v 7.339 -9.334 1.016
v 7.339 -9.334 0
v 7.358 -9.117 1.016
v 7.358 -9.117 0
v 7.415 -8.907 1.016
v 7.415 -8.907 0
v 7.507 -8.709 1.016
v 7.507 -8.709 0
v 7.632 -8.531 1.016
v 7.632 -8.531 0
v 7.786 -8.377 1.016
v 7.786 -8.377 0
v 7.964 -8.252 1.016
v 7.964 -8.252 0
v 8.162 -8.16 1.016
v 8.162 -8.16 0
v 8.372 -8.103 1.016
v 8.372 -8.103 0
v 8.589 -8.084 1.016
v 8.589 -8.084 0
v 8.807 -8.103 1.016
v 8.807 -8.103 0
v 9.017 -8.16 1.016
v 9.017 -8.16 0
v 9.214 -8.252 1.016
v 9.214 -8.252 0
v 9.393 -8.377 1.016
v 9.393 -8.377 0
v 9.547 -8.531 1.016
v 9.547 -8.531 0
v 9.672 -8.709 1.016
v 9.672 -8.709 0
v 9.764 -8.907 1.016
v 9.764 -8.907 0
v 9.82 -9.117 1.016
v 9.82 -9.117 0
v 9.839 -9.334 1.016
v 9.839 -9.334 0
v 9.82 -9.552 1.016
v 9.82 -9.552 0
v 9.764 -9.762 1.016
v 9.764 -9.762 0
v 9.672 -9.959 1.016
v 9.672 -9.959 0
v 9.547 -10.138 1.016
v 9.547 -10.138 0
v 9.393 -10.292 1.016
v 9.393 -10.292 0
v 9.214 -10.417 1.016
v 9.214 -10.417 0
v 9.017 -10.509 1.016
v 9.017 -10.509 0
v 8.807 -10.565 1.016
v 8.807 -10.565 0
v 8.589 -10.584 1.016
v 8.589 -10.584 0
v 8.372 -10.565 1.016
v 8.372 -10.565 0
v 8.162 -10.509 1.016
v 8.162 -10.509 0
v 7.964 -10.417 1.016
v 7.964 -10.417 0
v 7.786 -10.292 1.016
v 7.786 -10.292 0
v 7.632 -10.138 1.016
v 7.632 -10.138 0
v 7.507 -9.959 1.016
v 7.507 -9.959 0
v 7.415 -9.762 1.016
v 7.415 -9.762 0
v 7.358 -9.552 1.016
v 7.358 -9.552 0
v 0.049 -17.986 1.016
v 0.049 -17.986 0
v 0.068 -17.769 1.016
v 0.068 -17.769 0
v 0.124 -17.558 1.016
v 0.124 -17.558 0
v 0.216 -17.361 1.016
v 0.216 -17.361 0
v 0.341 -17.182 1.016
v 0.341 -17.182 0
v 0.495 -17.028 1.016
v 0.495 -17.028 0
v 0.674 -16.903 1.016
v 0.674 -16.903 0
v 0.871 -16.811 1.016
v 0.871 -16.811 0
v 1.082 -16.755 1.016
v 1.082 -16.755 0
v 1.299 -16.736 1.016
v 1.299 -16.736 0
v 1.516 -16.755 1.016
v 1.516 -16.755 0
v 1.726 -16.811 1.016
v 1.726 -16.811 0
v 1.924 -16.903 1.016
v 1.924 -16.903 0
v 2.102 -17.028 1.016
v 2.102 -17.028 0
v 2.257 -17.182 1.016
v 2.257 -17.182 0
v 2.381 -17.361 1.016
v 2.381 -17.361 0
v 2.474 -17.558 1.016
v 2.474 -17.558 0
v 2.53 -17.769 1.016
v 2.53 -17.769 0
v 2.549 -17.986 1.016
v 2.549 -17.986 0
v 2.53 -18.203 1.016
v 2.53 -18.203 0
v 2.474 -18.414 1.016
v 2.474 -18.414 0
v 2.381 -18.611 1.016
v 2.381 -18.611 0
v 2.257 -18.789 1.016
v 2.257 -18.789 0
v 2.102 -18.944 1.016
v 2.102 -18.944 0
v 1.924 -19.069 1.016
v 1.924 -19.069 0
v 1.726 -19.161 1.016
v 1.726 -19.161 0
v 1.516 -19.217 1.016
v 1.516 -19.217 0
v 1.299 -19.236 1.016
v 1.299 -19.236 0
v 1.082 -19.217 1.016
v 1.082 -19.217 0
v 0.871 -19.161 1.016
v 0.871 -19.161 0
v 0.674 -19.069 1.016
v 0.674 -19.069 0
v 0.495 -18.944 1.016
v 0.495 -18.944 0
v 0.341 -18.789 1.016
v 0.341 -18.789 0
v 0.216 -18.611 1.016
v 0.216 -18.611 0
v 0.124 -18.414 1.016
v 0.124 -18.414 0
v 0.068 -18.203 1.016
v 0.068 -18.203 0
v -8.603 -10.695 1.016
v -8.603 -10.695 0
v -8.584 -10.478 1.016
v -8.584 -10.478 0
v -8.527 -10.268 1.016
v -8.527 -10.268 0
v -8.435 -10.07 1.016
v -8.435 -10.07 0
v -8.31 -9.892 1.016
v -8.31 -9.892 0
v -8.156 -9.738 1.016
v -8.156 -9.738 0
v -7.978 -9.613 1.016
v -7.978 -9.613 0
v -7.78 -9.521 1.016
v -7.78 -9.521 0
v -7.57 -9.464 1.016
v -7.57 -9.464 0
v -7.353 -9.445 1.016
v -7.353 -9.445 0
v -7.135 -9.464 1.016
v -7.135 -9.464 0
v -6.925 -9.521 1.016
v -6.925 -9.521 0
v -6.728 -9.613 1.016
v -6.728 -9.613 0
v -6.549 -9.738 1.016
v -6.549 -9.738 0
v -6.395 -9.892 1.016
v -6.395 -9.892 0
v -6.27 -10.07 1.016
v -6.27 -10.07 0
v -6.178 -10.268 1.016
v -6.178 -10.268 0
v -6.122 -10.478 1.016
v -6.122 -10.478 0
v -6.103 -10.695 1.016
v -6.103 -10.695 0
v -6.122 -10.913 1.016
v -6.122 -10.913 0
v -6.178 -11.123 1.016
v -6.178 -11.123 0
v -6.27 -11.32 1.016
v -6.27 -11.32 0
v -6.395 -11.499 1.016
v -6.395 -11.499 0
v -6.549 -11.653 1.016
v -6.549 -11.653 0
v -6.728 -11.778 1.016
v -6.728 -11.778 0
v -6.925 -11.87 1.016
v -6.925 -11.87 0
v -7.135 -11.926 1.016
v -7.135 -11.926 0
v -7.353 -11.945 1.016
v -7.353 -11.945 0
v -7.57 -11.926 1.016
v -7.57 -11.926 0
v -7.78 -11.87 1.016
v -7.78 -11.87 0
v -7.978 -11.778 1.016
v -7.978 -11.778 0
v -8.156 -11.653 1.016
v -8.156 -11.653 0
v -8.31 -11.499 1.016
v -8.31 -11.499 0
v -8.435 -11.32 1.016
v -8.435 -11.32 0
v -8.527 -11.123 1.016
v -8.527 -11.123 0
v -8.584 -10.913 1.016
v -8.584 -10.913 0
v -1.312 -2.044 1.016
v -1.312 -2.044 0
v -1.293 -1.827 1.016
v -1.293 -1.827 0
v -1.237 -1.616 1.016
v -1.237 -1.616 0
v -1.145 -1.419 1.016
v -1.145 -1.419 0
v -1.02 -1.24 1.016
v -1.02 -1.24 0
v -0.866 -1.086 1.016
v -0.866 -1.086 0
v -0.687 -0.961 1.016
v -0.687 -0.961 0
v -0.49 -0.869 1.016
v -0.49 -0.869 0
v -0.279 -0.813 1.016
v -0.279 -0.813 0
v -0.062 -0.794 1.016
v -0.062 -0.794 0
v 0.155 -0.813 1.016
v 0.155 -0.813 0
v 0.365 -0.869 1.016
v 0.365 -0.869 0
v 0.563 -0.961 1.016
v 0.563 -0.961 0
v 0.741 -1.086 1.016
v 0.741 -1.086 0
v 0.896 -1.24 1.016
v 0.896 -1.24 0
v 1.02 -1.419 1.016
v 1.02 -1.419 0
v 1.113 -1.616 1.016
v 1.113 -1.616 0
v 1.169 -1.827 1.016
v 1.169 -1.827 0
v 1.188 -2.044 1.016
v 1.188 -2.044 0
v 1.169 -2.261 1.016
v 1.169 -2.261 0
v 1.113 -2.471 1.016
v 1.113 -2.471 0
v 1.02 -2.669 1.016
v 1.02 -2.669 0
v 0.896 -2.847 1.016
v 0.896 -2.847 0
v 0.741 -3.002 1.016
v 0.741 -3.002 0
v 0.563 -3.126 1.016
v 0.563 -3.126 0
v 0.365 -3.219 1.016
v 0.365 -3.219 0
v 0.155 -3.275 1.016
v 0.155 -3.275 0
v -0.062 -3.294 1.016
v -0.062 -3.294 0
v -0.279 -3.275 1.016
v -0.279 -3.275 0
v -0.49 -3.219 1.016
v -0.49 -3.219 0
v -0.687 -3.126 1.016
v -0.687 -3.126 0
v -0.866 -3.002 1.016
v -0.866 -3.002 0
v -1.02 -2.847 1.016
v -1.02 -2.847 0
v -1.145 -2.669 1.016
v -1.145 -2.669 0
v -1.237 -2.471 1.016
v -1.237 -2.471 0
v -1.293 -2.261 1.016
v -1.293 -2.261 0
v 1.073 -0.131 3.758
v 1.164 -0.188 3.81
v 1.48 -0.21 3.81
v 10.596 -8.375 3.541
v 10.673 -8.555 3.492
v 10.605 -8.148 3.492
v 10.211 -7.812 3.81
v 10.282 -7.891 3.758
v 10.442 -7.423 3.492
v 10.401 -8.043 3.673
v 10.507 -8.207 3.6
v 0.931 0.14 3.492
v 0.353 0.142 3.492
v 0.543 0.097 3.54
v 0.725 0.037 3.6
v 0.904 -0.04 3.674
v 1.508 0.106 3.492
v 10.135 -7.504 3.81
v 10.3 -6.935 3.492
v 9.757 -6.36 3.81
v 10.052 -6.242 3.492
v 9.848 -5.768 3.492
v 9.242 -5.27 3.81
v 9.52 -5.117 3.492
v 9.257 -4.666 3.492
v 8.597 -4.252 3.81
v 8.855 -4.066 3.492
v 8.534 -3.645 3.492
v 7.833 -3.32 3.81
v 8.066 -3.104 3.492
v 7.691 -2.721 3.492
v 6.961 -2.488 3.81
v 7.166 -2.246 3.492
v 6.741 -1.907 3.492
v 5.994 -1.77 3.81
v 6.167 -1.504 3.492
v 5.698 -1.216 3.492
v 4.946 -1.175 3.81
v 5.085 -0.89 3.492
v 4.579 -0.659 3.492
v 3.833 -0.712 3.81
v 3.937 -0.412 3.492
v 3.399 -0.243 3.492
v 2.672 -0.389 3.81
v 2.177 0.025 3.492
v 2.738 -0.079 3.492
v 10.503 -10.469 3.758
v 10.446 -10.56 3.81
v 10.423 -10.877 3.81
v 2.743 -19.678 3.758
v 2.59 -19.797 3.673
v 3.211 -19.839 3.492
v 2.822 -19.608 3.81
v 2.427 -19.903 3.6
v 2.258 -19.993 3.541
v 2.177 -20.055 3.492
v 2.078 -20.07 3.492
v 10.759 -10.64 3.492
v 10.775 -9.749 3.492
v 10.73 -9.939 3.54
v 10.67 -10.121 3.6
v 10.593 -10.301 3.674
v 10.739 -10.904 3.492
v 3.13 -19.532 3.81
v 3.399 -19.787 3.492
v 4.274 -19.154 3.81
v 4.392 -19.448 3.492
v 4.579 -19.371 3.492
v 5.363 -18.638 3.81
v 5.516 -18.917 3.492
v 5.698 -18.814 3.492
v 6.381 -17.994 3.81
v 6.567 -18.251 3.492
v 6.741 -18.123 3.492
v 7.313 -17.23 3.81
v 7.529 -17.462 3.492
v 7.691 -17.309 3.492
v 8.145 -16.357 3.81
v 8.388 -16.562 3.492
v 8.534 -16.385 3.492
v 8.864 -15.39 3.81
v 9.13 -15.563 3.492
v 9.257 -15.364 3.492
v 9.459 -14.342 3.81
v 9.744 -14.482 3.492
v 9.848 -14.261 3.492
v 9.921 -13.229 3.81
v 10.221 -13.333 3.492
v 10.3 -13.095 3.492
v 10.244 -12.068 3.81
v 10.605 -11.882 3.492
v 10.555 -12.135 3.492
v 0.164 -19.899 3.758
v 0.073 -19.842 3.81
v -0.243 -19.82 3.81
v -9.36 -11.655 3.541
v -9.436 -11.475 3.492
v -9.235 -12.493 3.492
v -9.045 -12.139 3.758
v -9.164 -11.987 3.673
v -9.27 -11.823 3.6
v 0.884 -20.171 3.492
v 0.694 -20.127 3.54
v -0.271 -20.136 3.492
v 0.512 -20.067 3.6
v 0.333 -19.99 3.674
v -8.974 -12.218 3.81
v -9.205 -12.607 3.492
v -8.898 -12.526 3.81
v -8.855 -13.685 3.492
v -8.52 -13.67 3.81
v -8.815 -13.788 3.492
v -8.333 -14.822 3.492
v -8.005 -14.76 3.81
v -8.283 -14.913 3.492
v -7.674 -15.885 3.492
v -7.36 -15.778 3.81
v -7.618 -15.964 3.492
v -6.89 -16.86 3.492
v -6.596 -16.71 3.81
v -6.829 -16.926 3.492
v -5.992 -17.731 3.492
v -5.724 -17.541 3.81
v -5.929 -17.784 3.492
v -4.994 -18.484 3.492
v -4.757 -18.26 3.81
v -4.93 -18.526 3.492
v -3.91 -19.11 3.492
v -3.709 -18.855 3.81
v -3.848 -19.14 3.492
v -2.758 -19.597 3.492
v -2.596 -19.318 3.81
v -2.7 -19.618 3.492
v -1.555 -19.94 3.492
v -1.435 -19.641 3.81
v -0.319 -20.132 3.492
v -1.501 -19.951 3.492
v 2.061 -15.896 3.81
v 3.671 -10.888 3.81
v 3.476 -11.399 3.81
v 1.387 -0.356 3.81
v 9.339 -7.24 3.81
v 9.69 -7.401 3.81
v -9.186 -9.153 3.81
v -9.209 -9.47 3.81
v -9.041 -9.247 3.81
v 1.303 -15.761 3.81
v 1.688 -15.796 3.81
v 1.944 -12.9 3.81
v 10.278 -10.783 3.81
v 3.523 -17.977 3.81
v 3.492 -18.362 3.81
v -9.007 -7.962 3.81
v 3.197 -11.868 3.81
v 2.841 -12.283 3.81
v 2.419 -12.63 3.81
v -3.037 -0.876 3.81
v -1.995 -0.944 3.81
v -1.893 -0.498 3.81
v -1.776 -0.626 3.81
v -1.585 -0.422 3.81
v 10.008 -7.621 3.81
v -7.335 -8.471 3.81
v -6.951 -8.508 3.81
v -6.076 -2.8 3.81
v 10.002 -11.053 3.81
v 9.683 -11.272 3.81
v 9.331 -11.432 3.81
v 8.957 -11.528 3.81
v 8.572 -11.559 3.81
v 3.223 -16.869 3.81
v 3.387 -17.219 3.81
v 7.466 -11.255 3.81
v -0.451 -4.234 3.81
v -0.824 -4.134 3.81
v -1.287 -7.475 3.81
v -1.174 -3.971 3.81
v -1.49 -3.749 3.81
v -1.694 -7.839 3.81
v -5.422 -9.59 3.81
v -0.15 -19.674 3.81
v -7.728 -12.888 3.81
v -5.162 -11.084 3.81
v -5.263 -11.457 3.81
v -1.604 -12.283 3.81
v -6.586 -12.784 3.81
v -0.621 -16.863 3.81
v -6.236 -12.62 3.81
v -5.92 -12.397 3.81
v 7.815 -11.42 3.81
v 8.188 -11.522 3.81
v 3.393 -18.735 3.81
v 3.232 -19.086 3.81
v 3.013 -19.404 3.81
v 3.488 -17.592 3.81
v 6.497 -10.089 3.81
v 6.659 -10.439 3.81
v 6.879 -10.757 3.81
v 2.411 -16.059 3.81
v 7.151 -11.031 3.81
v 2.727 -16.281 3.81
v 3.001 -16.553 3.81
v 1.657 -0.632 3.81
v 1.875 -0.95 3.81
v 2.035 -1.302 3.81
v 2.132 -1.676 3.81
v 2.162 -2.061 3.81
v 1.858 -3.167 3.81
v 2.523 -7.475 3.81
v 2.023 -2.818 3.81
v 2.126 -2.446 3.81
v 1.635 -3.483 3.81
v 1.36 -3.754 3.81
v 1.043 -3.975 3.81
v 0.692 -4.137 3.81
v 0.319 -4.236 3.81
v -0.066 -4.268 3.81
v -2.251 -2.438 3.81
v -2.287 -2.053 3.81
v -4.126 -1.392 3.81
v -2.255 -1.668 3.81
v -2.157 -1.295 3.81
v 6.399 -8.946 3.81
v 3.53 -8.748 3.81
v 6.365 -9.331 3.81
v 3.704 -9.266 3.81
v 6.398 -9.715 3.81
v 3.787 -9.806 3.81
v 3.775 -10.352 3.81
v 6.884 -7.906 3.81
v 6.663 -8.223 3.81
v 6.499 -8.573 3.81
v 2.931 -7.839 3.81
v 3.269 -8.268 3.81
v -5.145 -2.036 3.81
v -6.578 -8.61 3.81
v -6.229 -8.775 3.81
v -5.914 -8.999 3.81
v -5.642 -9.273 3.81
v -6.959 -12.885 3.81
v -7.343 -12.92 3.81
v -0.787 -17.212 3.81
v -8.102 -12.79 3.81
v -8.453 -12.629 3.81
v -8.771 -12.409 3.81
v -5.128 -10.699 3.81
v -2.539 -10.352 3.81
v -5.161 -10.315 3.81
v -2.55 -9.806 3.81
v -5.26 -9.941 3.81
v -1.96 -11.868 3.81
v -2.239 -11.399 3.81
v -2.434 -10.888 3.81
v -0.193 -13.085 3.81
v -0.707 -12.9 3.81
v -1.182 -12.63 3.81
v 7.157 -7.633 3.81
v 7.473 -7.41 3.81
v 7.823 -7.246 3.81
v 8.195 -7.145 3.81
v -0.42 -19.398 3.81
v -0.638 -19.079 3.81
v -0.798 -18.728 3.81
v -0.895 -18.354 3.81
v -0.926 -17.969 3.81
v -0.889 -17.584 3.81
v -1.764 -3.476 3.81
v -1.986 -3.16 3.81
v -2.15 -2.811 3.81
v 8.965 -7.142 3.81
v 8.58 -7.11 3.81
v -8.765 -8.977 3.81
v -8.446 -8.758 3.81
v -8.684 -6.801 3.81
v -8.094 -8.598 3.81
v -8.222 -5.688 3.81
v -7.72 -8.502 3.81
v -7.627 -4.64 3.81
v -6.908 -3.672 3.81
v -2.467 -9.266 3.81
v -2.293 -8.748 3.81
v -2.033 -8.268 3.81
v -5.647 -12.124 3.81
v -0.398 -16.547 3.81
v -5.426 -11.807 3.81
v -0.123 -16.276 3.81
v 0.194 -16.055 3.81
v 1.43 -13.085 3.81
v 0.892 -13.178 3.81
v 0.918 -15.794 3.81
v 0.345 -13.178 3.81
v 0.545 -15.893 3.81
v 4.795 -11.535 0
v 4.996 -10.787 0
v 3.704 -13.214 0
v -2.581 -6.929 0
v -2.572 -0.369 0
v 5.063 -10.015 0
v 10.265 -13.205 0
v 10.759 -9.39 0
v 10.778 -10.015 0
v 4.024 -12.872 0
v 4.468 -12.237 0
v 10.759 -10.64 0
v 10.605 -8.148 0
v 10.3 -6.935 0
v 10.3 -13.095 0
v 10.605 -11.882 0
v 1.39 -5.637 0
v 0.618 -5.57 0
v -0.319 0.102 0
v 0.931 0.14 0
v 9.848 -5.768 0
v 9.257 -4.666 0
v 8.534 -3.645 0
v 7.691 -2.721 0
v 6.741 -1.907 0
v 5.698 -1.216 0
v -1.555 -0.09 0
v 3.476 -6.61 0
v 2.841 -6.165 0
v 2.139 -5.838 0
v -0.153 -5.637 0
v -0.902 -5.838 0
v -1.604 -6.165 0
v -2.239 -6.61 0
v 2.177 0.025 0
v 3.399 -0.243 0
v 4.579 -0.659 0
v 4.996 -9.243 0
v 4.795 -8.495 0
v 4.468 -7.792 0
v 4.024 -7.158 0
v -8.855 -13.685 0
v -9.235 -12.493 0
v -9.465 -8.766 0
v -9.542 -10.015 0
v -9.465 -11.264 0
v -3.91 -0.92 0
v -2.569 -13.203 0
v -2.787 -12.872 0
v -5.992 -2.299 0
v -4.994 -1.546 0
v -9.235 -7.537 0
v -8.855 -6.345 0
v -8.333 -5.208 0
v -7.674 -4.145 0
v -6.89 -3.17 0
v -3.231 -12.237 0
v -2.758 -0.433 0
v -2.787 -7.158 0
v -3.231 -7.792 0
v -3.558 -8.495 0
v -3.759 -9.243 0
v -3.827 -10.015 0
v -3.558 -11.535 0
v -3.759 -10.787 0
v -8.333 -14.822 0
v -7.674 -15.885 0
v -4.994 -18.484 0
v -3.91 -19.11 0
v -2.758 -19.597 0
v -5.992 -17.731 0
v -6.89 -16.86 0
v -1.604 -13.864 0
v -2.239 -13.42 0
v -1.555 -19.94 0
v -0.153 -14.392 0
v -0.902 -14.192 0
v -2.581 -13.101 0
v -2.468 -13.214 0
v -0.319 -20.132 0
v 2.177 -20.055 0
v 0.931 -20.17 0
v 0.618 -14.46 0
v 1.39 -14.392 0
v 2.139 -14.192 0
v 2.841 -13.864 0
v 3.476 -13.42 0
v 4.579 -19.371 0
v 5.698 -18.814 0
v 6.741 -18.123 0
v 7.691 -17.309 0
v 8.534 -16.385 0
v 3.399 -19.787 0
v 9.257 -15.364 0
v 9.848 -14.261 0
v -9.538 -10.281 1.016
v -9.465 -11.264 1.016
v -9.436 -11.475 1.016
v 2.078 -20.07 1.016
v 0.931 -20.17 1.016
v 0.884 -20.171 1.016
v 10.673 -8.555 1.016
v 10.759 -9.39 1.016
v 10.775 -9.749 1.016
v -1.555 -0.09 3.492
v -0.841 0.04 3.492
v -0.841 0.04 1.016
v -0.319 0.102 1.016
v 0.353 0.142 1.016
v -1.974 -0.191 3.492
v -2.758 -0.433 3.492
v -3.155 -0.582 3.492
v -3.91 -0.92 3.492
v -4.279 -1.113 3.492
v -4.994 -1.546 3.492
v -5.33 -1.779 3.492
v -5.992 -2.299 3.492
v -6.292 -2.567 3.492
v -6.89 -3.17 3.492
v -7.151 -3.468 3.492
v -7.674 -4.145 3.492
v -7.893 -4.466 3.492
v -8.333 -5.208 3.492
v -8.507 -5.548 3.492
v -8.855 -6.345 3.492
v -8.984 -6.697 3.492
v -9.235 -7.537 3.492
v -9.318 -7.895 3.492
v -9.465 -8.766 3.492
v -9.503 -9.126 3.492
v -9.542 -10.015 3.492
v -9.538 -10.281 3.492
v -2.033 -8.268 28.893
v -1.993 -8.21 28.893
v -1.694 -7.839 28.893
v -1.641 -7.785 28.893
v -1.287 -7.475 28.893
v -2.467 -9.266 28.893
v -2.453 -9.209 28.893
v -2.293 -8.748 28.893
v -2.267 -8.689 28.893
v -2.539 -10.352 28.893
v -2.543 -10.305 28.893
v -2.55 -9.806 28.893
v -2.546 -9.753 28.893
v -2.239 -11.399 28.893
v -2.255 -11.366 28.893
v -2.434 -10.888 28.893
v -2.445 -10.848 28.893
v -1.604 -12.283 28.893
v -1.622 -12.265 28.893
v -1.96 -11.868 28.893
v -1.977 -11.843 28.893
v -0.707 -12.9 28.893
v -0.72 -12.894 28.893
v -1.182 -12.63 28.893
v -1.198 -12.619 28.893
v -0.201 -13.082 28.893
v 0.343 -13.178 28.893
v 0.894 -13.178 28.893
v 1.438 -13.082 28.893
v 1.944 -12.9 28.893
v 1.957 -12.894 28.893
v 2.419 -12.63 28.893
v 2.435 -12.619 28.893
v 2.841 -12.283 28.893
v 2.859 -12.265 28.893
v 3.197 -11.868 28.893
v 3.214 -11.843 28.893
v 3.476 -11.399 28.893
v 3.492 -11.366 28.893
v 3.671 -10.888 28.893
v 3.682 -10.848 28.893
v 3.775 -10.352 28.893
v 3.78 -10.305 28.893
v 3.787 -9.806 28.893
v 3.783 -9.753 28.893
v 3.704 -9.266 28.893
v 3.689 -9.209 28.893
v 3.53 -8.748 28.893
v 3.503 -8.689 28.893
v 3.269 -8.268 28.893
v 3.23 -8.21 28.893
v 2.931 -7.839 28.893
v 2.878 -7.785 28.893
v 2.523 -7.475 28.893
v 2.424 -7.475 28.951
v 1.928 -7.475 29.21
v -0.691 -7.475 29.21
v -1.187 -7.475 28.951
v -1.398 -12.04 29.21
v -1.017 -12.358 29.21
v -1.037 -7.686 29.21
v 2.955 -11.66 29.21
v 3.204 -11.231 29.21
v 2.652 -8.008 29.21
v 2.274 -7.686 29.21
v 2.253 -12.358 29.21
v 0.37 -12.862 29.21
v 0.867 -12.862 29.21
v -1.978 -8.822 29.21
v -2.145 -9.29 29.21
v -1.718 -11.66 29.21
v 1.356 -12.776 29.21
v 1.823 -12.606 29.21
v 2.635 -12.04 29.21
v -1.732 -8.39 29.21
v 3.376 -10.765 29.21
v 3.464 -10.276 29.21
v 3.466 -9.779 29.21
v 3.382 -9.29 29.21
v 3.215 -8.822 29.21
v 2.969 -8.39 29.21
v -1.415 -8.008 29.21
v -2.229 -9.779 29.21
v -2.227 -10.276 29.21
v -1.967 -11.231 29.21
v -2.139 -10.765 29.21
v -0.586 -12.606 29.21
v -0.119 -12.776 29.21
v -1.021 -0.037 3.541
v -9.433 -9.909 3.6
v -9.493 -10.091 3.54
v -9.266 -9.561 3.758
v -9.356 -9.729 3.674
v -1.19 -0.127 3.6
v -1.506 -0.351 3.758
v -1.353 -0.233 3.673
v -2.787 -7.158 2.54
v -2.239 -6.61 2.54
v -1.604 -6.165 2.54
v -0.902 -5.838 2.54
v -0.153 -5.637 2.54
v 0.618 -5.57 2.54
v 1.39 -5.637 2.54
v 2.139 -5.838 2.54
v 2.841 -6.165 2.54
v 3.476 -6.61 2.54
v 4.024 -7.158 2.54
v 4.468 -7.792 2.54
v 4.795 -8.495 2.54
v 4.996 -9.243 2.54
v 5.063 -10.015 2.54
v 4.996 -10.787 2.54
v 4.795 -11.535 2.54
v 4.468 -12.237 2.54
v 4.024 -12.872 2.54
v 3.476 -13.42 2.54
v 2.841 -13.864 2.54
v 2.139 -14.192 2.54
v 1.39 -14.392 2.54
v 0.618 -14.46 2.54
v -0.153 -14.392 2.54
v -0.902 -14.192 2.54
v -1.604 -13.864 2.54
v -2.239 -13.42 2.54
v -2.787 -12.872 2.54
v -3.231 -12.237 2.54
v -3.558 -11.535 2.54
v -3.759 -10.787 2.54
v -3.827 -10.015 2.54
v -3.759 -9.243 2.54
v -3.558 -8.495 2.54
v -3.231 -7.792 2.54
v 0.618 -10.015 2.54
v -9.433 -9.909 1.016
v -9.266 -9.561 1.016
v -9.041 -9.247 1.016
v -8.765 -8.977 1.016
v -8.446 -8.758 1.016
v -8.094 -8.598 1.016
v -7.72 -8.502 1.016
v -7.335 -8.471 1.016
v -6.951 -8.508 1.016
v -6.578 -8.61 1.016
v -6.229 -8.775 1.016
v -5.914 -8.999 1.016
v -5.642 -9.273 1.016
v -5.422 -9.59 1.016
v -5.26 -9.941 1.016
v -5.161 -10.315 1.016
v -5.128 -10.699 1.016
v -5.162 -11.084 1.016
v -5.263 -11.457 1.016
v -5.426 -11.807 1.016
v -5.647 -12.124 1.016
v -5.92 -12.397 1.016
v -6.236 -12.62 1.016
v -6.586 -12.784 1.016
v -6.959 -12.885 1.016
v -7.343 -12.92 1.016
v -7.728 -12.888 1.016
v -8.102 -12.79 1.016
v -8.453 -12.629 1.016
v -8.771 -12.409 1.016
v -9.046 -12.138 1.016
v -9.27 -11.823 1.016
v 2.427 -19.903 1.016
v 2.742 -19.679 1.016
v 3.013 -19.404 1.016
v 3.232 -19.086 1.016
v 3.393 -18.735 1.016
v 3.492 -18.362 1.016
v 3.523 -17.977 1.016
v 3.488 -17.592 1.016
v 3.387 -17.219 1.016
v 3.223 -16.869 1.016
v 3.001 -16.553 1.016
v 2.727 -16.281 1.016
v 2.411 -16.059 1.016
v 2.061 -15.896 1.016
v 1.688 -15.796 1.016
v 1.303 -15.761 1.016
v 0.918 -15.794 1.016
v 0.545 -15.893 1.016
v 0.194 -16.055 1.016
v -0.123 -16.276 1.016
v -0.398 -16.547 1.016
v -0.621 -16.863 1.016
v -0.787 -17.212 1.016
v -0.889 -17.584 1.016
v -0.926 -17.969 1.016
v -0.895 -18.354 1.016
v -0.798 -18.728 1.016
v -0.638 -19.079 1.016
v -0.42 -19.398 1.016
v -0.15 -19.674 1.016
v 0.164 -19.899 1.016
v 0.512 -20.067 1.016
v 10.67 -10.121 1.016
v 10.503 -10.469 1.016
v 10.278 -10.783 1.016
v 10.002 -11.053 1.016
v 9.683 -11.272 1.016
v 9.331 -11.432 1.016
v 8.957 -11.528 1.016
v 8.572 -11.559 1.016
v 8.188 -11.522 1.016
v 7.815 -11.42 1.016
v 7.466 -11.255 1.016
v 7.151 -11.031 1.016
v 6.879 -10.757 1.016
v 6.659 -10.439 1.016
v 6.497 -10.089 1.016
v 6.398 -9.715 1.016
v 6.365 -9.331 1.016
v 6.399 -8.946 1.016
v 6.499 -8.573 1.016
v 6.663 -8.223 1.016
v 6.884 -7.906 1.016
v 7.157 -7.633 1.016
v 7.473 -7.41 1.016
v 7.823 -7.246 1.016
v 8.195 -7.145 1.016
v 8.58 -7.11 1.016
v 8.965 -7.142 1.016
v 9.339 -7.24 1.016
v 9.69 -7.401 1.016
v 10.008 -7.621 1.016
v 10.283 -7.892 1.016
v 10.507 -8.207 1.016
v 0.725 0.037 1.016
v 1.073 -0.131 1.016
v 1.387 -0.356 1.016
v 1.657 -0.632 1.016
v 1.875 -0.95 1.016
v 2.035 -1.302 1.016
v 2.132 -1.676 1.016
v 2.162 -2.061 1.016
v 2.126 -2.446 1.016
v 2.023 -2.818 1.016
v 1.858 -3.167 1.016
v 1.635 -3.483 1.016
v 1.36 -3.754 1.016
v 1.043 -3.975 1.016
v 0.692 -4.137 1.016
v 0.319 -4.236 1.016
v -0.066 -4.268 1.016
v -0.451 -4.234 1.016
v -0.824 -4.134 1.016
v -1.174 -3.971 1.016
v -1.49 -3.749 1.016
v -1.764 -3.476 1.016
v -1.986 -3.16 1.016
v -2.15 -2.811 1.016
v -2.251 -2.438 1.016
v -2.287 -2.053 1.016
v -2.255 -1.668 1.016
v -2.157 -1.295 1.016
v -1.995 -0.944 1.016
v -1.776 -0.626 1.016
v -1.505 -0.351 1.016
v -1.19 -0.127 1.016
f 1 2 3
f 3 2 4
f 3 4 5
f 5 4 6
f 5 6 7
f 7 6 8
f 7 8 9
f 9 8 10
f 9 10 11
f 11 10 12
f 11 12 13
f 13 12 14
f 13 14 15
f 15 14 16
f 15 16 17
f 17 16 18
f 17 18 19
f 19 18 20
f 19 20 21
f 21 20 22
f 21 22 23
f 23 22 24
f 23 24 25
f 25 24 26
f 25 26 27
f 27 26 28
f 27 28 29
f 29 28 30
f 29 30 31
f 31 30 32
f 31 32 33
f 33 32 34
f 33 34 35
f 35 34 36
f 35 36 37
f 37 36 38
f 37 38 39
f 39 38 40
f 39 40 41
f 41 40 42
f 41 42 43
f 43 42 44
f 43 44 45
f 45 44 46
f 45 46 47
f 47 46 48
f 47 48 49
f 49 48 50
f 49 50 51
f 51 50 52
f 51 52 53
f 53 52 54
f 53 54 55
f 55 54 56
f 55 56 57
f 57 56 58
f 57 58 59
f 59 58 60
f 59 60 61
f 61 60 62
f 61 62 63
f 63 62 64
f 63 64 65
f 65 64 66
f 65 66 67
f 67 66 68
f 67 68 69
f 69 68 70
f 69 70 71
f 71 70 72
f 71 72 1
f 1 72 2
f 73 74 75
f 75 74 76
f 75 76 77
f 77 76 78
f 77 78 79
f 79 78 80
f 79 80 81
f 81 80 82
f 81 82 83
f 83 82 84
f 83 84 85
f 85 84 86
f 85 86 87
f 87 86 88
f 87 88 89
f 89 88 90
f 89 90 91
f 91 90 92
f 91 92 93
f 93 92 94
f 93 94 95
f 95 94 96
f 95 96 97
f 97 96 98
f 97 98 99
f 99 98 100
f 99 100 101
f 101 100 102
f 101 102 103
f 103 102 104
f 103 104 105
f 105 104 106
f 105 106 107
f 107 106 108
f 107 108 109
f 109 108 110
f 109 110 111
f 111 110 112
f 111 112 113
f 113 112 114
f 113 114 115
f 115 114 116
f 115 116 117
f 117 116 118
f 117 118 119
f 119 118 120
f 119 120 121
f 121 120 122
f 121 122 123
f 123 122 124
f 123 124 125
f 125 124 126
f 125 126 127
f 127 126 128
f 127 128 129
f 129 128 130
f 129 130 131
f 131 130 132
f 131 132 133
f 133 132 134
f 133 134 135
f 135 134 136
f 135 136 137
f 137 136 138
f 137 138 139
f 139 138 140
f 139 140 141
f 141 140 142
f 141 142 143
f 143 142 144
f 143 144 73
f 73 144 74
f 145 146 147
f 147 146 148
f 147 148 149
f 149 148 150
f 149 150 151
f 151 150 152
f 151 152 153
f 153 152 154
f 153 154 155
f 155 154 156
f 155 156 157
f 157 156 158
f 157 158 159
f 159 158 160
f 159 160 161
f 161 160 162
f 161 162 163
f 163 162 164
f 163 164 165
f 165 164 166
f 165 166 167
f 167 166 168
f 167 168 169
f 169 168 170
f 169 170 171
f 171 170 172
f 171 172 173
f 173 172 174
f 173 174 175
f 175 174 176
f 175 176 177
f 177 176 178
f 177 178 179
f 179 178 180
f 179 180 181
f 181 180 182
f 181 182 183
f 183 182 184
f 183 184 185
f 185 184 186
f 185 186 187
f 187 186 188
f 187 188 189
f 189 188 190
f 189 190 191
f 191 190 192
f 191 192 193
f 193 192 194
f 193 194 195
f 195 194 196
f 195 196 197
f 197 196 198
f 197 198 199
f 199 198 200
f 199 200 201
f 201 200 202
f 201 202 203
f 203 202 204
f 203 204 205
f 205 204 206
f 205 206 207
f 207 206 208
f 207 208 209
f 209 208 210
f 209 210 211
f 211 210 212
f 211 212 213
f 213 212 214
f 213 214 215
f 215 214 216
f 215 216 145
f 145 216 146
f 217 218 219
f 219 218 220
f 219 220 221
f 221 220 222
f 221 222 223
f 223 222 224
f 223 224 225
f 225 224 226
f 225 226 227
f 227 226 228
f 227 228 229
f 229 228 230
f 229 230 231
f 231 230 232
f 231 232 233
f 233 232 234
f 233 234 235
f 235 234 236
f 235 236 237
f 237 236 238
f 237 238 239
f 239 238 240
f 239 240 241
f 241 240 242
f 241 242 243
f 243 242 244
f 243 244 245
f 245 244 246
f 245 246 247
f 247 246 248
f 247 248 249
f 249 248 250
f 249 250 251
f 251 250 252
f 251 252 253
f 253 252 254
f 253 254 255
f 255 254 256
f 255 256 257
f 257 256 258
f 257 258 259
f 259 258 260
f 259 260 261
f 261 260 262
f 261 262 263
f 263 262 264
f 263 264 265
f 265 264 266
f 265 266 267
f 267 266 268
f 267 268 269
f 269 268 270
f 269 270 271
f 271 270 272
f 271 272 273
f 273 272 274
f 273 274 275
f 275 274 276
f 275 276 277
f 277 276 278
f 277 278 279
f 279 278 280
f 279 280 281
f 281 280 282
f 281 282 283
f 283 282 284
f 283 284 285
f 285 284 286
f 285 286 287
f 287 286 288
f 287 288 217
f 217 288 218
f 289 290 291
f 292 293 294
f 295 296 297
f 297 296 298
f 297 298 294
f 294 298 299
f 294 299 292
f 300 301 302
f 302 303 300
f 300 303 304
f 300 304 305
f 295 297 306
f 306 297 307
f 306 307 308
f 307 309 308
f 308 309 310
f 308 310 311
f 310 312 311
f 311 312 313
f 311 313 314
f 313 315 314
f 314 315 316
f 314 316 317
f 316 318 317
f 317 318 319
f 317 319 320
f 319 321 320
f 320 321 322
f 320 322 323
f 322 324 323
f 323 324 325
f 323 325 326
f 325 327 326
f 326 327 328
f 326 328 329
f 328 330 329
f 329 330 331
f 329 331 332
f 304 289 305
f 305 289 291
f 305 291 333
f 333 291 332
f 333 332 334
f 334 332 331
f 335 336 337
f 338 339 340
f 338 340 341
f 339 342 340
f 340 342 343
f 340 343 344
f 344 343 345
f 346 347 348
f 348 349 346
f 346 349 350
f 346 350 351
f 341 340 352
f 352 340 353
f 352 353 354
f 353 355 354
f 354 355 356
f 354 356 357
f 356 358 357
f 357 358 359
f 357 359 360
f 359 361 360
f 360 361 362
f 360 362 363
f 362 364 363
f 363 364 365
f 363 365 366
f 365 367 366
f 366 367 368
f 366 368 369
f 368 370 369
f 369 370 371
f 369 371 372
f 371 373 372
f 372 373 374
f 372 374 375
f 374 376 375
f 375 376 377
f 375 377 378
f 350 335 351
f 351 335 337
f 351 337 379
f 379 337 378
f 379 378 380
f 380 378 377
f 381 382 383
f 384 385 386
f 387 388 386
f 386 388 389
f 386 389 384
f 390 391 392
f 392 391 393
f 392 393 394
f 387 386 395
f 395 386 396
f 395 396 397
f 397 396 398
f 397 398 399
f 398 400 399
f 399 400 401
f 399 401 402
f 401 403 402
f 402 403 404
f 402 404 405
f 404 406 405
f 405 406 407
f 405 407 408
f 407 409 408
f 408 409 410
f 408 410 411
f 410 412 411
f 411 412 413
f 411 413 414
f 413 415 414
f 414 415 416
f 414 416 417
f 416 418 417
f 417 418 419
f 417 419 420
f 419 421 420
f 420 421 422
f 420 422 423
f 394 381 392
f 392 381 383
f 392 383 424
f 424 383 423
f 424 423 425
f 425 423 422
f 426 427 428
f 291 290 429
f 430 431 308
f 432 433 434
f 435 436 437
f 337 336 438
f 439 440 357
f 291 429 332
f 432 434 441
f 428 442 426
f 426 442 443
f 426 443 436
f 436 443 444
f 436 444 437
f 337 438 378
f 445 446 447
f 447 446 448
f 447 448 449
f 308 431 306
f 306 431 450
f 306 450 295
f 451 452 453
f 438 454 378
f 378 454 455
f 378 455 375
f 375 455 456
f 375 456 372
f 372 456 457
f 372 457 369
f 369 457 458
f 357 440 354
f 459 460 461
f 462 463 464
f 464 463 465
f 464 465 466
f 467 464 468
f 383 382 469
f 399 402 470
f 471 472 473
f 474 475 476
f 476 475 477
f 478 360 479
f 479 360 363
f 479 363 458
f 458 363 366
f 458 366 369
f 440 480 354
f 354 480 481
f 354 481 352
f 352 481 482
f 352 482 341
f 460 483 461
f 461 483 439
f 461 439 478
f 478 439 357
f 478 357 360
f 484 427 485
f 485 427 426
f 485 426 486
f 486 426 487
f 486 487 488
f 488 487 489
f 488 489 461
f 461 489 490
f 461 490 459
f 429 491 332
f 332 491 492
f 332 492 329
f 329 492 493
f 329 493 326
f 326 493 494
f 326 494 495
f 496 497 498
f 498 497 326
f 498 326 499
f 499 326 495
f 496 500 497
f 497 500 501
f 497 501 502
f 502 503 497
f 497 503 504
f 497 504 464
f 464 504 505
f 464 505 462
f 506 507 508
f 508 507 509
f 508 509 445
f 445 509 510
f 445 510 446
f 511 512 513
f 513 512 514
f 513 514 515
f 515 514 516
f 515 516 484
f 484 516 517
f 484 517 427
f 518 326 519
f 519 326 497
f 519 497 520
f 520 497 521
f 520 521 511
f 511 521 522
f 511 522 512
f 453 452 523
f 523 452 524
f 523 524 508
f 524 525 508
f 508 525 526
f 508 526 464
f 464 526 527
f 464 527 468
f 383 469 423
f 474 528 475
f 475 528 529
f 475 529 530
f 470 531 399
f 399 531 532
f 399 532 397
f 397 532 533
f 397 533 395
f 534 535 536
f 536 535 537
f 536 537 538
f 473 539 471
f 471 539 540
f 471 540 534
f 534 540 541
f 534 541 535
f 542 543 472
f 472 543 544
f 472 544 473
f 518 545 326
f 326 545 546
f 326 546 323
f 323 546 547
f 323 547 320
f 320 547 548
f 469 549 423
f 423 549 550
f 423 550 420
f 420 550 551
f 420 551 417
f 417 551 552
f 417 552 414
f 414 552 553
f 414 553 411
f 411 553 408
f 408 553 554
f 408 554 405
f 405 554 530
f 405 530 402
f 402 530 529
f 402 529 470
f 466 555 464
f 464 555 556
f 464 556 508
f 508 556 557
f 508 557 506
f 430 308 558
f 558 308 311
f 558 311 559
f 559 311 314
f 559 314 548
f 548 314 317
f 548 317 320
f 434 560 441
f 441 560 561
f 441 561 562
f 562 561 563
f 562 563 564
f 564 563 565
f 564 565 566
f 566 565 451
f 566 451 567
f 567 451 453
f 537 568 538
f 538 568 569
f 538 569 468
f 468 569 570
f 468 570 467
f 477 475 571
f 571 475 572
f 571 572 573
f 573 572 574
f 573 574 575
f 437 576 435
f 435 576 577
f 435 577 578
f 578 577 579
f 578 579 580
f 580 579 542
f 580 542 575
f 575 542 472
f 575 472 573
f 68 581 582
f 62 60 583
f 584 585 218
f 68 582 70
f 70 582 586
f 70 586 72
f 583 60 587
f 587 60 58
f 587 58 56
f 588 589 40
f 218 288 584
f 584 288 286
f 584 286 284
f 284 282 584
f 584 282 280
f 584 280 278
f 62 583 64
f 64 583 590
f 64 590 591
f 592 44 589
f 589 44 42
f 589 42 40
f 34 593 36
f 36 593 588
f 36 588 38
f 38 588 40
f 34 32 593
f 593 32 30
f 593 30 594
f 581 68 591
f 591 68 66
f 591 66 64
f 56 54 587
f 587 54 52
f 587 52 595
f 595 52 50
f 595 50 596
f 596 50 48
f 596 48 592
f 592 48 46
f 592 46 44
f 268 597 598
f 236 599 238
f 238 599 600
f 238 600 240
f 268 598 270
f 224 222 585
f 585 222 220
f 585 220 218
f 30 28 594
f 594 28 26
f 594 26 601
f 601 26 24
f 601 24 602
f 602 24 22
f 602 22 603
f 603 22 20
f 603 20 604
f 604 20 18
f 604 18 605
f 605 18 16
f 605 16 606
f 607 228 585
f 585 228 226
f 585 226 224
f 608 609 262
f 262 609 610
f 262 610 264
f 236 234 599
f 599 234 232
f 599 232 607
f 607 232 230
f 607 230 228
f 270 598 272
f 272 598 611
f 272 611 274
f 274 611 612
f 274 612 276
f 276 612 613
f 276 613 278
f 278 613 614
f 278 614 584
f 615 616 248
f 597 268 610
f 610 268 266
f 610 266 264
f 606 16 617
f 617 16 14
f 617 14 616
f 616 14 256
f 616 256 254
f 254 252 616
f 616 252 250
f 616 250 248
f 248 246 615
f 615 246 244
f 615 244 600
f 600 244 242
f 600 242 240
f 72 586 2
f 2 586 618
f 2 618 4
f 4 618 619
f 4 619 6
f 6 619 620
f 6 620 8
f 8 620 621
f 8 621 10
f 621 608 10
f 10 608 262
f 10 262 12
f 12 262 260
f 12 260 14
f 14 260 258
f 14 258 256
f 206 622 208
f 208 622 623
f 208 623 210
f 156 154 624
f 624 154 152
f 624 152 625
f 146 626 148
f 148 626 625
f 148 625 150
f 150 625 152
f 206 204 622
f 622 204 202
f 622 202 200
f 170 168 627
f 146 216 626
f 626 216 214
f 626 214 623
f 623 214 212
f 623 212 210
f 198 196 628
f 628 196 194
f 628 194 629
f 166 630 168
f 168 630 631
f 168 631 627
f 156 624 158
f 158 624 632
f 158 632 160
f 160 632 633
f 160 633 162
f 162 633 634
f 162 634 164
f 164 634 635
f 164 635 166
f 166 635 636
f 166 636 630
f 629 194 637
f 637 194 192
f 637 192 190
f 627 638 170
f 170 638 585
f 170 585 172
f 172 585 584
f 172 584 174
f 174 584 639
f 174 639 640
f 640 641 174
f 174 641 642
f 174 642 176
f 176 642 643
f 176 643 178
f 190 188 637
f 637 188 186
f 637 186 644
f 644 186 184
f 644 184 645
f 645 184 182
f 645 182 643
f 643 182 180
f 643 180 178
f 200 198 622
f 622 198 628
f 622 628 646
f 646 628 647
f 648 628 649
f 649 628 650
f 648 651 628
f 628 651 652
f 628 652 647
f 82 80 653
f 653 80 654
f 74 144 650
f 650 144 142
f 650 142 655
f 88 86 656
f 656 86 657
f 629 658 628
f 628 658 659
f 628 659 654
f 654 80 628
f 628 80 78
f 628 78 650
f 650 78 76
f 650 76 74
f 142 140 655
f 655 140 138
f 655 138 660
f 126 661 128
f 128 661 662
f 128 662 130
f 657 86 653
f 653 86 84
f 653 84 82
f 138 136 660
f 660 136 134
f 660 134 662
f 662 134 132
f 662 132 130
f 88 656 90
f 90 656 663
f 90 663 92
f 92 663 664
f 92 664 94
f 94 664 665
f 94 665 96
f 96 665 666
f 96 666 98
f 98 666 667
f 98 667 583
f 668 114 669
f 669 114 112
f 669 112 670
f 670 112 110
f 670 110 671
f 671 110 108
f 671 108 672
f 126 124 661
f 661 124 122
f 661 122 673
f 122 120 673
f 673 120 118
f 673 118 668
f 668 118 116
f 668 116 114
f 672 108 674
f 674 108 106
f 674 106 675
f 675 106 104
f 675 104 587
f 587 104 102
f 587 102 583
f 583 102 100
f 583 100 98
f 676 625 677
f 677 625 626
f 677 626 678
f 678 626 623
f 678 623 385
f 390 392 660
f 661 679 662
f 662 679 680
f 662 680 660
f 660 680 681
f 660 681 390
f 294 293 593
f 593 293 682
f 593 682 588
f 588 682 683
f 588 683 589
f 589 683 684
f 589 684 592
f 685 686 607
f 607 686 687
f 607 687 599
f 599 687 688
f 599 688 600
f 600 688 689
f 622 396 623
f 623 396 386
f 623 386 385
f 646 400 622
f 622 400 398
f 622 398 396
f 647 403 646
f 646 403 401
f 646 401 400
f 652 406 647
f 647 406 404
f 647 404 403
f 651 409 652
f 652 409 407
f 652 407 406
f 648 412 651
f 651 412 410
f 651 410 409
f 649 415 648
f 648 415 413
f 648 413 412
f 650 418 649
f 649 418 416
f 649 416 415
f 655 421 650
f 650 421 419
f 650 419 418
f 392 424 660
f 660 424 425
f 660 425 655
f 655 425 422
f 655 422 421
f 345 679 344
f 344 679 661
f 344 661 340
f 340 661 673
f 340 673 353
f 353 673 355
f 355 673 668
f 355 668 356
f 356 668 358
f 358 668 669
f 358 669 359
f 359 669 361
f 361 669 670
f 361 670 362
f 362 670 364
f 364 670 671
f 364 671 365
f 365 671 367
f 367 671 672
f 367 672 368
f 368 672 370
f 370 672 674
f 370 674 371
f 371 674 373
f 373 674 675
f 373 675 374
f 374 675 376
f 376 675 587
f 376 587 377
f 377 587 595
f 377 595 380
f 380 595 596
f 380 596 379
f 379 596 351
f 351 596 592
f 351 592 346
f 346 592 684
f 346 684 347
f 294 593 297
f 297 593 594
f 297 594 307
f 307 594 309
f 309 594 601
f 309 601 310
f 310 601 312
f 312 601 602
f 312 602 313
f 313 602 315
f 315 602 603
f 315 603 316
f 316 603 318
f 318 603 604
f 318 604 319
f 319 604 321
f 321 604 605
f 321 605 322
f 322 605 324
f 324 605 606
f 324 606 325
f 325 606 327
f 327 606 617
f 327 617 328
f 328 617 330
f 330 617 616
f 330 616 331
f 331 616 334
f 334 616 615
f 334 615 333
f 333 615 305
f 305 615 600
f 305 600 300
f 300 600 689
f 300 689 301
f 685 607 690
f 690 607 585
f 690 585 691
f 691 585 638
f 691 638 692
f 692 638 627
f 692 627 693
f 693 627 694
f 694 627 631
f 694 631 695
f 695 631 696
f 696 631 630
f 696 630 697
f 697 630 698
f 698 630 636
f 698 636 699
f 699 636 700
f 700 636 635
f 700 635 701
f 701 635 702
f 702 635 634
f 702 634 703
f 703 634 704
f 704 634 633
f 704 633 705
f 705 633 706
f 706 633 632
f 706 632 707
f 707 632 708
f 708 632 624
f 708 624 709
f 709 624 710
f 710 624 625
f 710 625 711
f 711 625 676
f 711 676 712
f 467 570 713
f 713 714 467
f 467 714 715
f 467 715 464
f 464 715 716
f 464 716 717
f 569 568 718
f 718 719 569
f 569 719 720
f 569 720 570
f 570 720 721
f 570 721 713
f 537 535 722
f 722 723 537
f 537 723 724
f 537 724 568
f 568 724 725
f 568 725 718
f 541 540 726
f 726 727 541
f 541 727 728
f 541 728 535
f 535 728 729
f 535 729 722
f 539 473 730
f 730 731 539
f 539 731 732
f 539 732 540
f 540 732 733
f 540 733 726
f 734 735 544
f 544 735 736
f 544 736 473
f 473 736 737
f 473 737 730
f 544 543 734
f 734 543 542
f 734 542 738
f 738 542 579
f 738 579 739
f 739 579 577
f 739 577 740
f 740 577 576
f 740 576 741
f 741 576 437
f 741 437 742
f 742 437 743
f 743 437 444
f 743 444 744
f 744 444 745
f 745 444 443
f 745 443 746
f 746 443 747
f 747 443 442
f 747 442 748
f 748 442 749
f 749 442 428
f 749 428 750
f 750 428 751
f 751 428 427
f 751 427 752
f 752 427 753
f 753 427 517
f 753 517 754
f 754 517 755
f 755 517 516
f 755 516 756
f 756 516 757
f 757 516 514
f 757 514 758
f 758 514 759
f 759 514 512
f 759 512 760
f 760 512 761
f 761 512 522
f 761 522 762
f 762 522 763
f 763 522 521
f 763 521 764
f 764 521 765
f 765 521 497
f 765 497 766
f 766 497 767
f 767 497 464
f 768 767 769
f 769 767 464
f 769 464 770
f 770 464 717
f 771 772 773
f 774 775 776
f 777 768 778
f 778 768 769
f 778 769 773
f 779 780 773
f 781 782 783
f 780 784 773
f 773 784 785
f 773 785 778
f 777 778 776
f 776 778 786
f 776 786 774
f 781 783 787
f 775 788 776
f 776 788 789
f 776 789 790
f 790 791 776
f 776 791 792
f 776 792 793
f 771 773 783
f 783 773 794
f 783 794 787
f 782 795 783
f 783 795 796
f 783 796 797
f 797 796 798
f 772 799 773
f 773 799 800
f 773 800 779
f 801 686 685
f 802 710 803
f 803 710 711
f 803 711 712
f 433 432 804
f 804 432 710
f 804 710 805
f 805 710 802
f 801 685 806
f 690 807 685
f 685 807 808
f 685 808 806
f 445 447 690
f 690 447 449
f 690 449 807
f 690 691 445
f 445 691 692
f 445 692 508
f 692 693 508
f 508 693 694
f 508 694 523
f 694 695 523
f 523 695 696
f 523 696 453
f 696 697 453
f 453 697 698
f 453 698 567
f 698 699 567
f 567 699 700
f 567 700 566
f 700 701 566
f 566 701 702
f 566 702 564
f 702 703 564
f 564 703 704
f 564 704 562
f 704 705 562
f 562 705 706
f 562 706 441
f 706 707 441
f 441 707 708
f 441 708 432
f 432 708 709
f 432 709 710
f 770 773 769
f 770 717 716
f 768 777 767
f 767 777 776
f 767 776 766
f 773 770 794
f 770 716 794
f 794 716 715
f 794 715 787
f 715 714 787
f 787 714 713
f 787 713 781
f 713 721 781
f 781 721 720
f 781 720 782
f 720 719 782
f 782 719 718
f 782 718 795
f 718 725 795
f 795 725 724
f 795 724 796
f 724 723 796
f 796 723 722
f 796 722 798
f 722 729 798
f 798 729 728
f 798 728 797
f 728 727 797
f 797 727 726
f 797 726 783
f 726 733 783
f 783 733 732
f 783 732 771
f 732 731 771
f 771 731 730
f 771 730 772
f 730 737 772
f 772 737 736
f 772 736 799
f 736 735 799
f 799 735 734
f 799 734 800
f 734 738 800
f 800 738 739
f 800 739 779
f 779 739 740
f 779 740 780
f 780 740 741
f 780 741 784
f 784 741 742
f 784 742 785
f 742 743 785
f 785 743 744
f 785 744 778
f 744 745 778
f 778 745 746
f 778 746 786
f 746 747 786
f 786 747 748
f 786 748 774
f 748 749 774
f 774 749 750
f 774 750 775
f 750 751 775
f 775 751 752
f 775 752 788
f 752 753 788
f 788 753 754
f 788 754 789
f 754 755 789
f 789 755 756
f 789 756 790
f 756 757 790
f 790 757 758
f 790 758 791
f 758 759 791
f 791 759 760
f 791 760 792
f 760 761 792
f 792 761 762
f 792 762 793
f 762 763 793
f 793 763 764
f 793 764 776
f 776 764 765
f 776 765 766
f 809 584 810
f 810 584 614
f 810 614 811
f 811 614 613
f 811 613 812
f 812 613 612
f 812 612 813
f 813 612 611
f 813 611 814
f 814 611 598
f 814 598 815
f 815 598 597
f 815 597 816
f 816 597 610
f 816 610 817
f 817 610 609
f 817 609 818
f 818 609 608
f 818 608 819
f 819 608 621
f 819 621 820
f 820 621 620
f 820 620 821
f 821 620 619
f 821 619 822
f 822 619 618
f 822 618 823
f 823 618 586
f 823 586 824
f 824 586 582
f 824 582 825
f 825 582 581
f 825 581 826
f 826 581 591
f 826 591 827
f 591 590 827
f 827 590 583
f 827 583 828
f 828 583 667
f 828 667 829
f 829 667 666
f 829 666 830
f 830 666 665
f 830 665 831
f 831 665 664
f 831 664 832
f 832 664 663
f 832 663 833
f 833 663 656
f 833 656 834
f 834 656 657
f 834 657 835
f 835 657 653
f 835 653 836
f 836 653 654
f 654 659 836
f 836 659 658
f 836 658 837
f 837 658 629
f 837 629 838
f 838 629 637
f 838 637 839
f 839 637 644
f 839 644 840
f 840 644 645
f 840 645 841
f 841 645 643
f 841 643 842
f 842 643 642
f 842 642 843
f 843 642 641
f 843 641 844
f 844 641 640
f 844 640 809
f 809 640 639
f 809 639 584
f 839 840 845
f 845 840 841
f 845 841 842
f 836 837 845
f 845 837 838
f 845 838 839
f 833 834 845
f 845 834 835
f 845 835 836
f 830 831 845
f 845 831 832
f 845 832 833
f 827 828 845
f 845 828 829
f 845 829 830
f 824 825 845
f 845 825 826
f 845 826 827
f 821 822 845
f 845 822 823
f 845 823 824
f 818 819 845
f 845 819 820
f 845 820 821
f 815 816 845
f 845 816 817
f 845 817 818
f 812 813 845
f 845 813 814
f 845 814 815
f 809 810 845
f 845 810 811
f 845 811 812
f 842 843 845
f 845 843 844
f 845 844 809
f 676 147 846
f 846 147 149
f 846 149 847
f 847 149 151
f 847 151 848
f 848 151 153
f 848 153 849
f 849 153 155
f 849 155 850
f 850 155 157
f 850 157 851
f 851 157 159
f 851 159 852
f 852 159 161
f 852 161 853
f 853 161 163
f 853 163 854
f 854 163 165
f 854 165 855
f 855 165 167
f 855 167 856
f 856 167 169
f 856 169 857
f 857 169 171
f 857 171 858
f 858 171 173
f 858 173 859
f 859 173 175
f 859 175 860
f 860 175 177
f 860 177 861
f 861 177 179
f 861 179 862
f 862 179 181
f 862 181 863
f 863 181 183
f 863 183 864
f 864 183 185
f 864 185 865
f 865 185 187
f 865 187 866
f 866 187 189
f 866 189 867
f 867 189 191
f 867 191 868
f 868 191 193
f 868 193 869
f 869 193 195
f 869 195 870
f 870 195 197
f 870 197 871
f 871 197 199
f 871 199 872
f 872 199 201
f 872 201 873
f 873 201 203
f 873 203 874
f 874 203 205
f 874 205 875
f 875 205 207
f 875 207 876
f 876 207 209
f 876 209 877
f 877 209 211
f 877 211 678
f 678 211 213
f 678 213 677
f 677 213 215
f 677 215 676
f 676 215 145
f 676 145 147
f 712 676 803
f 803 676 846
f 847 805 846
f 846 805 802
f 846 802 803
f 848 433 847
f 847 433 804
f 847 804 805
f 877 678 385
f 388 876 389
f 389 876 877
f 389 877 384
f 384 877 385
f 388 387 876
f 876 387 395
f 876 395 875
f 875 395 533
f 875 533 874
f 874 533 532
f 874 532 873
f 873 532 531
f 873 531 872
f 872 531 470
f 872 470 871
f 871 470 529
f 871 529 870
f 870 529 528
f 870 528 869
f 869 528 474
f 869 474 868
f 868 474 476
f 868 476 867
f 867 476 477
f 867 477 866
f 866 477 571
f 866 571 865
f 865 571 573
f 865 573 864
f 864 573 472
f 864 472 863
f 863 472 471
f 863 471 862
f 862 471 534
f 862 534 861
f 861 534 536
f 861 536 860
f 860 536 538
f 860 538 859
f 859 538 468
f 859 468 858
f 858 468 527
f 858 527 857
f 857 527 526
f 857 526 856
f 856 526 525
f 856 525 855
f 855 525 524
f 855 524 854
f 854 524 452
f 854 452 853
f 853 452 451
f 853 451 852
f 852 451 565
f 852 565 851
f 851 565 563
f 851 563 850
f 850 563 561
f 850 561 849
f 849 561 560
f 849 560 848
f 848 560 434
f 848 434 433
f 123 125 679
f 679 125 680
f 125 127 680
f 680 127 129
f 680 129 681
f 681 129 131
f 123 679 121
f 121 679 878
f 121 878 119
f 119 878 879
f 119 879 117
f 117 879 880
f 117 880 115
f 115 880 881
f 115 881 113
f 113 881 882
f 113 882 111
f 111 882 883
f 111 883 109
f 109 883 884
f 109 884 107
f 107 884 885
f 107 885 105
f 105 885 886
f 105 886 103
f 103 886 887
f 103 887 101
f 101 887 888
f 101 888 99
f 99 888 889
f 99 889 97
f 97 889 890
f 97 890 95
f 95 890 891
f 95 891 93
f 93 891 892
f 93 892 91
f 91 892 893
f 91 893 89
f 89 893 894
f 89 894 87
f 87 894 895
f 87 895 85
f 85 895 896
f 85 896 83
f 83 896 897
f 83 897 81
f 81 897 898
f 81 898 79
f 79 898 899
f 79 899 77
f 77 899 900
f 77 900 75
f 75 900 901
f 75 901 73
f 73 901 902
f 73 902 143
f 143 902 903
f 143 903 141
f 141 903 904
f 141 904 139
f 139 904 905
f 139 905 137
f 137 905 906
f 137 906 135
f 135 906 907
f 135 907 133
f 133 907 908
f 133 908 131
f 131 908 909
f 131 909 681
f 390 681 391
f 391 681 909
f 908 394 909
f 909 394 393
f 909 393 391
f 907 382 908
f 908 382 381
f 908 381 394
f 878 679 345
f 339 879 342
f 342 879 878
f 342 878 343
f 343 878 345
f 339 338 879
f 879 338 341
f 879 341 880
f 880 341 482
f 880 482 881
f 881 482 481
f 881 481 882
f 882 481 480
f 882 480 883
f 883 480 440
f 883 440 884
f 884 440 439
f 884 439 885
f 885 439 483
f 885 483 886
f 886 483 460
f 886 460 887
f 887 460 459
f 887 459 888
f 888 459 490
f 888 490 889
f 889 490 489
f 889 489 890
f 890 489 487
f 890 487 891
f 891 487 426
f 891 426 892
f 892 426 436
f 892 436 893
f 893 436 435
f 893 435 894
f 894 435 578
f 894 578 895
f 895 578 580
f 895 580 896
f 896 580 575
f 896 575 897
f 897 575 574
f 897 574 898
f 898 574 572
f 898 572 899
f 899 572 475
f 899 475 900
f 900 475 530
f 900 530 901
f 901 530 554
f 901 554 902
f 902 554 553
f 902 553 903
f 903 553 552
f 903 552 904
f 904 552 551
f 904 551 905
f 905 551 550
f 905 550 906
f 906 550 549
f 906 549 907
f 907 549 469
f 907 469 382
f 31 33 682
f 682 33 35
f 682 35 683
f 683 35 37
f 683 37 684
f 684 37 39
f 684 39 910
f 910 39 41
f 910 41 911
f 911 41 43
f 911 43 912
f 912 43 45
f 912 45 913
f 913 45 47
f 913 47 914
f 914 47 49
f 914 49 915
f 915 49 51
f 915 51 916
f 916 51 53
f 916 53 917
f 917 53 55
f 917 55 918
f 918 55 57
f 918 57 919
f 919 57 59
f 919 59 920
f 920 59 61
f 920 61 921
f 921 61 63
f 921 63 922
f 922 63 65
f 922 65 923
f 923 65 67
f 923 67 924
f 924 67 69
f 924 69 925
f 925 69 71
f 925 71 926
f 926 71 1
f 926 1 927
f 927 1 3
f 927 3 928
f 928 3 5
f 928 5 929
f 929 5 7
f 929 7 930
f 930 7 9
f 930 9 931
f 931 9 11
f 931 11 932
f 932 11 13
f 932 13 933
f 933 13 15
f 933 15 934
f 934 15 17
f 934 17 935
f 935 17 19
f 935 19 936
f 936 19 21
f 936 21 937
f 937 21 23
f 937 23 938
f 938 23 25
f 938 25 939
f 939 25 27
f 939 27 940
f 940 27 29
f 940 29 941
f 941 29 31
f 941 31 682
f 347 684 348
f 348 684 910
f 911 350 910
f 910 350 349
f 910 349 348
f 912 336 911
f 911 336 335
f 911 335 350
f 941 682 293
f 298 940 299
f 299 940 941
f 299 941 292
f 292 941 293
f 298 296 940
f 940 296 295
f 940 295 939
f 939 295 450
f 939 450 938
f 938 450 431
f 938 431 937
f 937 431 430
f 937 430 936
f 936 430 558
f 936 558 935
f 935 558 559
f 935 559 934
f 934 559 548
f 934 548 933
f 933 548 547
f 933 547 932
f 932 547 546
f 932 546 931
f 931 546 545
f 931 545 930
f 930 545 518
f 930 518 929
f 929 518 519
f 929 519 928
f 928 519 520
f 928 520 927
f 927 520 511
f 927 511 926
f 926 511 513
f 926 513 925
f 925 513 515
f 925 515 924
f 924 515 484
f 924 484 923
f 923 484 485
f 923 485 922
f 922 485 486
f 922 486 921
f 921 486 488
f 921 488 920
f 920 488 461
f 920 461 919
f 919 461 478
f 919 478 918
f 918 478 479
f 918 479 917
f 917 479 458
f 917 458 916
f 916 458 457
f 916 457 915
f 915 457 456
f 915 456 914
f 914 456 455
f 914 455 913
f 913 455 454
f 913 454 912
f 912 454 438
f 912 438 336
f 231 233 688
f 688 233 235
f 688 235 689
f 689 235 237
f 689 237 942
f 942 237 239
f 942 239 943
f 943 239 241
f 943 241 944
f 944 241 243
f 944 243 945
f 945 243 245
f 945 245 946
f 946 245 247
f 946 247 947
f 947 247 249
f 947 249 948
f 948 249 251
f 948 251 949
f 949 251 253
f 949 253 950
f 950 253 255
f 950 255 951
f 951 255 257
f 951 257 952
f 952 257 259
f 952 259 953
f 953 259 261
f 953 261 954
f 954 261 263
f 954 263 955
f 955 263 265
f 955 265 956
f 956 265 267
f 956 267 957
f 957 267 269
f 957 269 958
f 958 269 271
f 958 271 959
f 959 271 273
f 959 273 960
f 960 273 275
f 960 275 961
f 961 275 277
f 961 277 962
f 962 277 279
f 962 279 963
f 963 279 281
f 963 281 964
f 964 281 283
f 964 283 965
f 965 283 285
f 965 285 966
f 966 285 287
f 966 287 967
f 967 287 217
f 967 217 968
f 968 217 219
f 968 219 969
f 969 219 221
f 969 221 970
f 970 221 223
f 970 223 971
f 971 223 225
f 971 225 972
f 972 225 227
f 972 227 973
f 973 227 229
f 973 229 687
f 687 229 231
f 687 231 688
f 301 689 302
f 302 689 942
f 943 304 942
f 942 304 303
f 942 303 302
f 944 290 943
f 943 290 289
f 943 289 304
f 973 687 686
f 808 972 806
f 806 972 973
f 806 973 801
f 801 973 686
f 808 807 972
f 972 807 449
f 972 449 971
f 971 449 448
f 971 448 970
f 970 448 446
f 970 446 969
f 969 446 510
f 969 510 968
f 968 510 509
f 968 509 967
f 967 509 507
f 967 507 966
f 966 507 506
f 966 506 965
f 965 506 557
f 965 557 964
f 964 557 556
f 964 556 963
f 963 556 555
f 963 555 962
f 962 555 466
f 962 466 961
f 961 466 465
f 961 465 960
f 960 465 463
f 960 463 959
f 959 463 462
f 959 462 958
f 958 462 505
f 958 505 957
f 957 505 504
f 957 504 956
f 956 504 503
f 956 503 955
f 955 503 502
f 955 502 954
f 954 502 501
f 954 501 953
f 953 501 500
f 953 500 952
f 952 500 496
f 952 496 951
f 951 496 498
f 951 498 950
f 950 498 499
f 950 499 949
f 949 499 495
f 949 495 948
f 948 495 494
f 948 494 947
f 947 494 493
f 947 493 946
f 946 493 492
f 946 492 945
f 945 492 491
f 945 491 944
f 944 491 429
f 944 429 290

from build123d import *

# Parameters (mm, degrees)
ESQUISSE1_R             = 10.16
ESQUISSE1_R_2           = 1.25
BOSS_EXTRU_2_DEPTH      = 3.81
BOSS_EXTRU_3_DEPTH      = 25.4
CHANFREIN1_SIZE         = 0.3175
ESQUISSE3_R             = 4.445
ENL_V_MAT_EXTRU_1_DEPTH = 2.54
ESQUISSE4_R             = 2.224538278
ENL_V_MAT_EXTRU_6_DEPTH = 2.794


with BuildPart() as part:
    # Esquisse1 → Boss.-Extru.2 (new body)
    with BuildSketch(Plane.XY):
        with Locations((0.618453307, -10.014969778)):
            Circle(ESQUISSE1_R)
        with Locations((8.589458927, -9.334477749)):
            Circle(ESQUISSE1_R_2, mode=Mode.SUBTRACT)
        with Locations((1.298945336, -17.985975399)):
            Circle(ESQUISSE1_R_2, mode=Mode.SUBTRACT)
        with Locations((-7.352552313, -10.695461808)):
            Circle(ESQUISSE1_R_2, mode=Mode.SUBTRACT)
        with Locations((-0.062038722, -2.043964158)):
            Circle(ESQUISSE1_R_2, mode=Mode.SUBTRACT)
    extrude(amount=BOSS_EXTRU_2_DEPTH)

    # Esquisse2 → Boss.-Extru.3 (add)
    with BuildSketch(Plane.XY.offset(3.81)):
        with BuildLine():
            Line((-1.286546693, -7.474969778), (2.523453307, -7.474969778))
            ThreePointArc((2.523453307, -7.474969778), (0.618453307, -13.189969778), (-1.286546693, -7.474969778))
        make_face()
    extrude(amount=BOSS_EXTRU_3_DEPTH)

    # Chanfrein1
    chanfrein1_edges = [part.edges().sort_by_distance(p)[0] for p in [
        (0.618453307, -13.189969778, 29.21),
        (-9.541546693, -10.014969778, 3.81),
    ]]
    chamfer(chanfrein1_edges, length=CHANFREIN1_SIZE)

    # Esquisse3 → Enlèv. mat.-Extru.1 (cut)
    with BuildSketch(Plane(origin=(0, 0, 0), x_dir=(-1, 0, 0), z_dir=(0, 0, -1))):
        with Locations((-0.618453307, -10.014969778)):
            Circle(ESQUISSE3_R)
    extrude(amount=-ENL_V_MAT_EXTRU_1_DEPTH, mode=Mode.SUBTRACT)

    # Esquisse4 → Enlèv. mat.-Extru.6 (cut)
    with BuildSketch(Plane.XY.offset(3.81)):
        with Locations((-0.062038722, -2.043964158)):
            Circle(ESQUISSE4_R)
        with Locations((8.589458927, -9.334477749)):
            Circle(ESQUISSE4_R)
        with Locations((1.298945336, -17.985975399)):
            Circle(ESQUISSE4_R)
        with Locations((-7.352552313, -10.695461808)):
            Circle(ESQUISSE4_R)
    extrude(amount=-ENL_V_MAT_EXTRU_6_DEPTH, mode=Mode.SUBTRACT)


solid = part.part
